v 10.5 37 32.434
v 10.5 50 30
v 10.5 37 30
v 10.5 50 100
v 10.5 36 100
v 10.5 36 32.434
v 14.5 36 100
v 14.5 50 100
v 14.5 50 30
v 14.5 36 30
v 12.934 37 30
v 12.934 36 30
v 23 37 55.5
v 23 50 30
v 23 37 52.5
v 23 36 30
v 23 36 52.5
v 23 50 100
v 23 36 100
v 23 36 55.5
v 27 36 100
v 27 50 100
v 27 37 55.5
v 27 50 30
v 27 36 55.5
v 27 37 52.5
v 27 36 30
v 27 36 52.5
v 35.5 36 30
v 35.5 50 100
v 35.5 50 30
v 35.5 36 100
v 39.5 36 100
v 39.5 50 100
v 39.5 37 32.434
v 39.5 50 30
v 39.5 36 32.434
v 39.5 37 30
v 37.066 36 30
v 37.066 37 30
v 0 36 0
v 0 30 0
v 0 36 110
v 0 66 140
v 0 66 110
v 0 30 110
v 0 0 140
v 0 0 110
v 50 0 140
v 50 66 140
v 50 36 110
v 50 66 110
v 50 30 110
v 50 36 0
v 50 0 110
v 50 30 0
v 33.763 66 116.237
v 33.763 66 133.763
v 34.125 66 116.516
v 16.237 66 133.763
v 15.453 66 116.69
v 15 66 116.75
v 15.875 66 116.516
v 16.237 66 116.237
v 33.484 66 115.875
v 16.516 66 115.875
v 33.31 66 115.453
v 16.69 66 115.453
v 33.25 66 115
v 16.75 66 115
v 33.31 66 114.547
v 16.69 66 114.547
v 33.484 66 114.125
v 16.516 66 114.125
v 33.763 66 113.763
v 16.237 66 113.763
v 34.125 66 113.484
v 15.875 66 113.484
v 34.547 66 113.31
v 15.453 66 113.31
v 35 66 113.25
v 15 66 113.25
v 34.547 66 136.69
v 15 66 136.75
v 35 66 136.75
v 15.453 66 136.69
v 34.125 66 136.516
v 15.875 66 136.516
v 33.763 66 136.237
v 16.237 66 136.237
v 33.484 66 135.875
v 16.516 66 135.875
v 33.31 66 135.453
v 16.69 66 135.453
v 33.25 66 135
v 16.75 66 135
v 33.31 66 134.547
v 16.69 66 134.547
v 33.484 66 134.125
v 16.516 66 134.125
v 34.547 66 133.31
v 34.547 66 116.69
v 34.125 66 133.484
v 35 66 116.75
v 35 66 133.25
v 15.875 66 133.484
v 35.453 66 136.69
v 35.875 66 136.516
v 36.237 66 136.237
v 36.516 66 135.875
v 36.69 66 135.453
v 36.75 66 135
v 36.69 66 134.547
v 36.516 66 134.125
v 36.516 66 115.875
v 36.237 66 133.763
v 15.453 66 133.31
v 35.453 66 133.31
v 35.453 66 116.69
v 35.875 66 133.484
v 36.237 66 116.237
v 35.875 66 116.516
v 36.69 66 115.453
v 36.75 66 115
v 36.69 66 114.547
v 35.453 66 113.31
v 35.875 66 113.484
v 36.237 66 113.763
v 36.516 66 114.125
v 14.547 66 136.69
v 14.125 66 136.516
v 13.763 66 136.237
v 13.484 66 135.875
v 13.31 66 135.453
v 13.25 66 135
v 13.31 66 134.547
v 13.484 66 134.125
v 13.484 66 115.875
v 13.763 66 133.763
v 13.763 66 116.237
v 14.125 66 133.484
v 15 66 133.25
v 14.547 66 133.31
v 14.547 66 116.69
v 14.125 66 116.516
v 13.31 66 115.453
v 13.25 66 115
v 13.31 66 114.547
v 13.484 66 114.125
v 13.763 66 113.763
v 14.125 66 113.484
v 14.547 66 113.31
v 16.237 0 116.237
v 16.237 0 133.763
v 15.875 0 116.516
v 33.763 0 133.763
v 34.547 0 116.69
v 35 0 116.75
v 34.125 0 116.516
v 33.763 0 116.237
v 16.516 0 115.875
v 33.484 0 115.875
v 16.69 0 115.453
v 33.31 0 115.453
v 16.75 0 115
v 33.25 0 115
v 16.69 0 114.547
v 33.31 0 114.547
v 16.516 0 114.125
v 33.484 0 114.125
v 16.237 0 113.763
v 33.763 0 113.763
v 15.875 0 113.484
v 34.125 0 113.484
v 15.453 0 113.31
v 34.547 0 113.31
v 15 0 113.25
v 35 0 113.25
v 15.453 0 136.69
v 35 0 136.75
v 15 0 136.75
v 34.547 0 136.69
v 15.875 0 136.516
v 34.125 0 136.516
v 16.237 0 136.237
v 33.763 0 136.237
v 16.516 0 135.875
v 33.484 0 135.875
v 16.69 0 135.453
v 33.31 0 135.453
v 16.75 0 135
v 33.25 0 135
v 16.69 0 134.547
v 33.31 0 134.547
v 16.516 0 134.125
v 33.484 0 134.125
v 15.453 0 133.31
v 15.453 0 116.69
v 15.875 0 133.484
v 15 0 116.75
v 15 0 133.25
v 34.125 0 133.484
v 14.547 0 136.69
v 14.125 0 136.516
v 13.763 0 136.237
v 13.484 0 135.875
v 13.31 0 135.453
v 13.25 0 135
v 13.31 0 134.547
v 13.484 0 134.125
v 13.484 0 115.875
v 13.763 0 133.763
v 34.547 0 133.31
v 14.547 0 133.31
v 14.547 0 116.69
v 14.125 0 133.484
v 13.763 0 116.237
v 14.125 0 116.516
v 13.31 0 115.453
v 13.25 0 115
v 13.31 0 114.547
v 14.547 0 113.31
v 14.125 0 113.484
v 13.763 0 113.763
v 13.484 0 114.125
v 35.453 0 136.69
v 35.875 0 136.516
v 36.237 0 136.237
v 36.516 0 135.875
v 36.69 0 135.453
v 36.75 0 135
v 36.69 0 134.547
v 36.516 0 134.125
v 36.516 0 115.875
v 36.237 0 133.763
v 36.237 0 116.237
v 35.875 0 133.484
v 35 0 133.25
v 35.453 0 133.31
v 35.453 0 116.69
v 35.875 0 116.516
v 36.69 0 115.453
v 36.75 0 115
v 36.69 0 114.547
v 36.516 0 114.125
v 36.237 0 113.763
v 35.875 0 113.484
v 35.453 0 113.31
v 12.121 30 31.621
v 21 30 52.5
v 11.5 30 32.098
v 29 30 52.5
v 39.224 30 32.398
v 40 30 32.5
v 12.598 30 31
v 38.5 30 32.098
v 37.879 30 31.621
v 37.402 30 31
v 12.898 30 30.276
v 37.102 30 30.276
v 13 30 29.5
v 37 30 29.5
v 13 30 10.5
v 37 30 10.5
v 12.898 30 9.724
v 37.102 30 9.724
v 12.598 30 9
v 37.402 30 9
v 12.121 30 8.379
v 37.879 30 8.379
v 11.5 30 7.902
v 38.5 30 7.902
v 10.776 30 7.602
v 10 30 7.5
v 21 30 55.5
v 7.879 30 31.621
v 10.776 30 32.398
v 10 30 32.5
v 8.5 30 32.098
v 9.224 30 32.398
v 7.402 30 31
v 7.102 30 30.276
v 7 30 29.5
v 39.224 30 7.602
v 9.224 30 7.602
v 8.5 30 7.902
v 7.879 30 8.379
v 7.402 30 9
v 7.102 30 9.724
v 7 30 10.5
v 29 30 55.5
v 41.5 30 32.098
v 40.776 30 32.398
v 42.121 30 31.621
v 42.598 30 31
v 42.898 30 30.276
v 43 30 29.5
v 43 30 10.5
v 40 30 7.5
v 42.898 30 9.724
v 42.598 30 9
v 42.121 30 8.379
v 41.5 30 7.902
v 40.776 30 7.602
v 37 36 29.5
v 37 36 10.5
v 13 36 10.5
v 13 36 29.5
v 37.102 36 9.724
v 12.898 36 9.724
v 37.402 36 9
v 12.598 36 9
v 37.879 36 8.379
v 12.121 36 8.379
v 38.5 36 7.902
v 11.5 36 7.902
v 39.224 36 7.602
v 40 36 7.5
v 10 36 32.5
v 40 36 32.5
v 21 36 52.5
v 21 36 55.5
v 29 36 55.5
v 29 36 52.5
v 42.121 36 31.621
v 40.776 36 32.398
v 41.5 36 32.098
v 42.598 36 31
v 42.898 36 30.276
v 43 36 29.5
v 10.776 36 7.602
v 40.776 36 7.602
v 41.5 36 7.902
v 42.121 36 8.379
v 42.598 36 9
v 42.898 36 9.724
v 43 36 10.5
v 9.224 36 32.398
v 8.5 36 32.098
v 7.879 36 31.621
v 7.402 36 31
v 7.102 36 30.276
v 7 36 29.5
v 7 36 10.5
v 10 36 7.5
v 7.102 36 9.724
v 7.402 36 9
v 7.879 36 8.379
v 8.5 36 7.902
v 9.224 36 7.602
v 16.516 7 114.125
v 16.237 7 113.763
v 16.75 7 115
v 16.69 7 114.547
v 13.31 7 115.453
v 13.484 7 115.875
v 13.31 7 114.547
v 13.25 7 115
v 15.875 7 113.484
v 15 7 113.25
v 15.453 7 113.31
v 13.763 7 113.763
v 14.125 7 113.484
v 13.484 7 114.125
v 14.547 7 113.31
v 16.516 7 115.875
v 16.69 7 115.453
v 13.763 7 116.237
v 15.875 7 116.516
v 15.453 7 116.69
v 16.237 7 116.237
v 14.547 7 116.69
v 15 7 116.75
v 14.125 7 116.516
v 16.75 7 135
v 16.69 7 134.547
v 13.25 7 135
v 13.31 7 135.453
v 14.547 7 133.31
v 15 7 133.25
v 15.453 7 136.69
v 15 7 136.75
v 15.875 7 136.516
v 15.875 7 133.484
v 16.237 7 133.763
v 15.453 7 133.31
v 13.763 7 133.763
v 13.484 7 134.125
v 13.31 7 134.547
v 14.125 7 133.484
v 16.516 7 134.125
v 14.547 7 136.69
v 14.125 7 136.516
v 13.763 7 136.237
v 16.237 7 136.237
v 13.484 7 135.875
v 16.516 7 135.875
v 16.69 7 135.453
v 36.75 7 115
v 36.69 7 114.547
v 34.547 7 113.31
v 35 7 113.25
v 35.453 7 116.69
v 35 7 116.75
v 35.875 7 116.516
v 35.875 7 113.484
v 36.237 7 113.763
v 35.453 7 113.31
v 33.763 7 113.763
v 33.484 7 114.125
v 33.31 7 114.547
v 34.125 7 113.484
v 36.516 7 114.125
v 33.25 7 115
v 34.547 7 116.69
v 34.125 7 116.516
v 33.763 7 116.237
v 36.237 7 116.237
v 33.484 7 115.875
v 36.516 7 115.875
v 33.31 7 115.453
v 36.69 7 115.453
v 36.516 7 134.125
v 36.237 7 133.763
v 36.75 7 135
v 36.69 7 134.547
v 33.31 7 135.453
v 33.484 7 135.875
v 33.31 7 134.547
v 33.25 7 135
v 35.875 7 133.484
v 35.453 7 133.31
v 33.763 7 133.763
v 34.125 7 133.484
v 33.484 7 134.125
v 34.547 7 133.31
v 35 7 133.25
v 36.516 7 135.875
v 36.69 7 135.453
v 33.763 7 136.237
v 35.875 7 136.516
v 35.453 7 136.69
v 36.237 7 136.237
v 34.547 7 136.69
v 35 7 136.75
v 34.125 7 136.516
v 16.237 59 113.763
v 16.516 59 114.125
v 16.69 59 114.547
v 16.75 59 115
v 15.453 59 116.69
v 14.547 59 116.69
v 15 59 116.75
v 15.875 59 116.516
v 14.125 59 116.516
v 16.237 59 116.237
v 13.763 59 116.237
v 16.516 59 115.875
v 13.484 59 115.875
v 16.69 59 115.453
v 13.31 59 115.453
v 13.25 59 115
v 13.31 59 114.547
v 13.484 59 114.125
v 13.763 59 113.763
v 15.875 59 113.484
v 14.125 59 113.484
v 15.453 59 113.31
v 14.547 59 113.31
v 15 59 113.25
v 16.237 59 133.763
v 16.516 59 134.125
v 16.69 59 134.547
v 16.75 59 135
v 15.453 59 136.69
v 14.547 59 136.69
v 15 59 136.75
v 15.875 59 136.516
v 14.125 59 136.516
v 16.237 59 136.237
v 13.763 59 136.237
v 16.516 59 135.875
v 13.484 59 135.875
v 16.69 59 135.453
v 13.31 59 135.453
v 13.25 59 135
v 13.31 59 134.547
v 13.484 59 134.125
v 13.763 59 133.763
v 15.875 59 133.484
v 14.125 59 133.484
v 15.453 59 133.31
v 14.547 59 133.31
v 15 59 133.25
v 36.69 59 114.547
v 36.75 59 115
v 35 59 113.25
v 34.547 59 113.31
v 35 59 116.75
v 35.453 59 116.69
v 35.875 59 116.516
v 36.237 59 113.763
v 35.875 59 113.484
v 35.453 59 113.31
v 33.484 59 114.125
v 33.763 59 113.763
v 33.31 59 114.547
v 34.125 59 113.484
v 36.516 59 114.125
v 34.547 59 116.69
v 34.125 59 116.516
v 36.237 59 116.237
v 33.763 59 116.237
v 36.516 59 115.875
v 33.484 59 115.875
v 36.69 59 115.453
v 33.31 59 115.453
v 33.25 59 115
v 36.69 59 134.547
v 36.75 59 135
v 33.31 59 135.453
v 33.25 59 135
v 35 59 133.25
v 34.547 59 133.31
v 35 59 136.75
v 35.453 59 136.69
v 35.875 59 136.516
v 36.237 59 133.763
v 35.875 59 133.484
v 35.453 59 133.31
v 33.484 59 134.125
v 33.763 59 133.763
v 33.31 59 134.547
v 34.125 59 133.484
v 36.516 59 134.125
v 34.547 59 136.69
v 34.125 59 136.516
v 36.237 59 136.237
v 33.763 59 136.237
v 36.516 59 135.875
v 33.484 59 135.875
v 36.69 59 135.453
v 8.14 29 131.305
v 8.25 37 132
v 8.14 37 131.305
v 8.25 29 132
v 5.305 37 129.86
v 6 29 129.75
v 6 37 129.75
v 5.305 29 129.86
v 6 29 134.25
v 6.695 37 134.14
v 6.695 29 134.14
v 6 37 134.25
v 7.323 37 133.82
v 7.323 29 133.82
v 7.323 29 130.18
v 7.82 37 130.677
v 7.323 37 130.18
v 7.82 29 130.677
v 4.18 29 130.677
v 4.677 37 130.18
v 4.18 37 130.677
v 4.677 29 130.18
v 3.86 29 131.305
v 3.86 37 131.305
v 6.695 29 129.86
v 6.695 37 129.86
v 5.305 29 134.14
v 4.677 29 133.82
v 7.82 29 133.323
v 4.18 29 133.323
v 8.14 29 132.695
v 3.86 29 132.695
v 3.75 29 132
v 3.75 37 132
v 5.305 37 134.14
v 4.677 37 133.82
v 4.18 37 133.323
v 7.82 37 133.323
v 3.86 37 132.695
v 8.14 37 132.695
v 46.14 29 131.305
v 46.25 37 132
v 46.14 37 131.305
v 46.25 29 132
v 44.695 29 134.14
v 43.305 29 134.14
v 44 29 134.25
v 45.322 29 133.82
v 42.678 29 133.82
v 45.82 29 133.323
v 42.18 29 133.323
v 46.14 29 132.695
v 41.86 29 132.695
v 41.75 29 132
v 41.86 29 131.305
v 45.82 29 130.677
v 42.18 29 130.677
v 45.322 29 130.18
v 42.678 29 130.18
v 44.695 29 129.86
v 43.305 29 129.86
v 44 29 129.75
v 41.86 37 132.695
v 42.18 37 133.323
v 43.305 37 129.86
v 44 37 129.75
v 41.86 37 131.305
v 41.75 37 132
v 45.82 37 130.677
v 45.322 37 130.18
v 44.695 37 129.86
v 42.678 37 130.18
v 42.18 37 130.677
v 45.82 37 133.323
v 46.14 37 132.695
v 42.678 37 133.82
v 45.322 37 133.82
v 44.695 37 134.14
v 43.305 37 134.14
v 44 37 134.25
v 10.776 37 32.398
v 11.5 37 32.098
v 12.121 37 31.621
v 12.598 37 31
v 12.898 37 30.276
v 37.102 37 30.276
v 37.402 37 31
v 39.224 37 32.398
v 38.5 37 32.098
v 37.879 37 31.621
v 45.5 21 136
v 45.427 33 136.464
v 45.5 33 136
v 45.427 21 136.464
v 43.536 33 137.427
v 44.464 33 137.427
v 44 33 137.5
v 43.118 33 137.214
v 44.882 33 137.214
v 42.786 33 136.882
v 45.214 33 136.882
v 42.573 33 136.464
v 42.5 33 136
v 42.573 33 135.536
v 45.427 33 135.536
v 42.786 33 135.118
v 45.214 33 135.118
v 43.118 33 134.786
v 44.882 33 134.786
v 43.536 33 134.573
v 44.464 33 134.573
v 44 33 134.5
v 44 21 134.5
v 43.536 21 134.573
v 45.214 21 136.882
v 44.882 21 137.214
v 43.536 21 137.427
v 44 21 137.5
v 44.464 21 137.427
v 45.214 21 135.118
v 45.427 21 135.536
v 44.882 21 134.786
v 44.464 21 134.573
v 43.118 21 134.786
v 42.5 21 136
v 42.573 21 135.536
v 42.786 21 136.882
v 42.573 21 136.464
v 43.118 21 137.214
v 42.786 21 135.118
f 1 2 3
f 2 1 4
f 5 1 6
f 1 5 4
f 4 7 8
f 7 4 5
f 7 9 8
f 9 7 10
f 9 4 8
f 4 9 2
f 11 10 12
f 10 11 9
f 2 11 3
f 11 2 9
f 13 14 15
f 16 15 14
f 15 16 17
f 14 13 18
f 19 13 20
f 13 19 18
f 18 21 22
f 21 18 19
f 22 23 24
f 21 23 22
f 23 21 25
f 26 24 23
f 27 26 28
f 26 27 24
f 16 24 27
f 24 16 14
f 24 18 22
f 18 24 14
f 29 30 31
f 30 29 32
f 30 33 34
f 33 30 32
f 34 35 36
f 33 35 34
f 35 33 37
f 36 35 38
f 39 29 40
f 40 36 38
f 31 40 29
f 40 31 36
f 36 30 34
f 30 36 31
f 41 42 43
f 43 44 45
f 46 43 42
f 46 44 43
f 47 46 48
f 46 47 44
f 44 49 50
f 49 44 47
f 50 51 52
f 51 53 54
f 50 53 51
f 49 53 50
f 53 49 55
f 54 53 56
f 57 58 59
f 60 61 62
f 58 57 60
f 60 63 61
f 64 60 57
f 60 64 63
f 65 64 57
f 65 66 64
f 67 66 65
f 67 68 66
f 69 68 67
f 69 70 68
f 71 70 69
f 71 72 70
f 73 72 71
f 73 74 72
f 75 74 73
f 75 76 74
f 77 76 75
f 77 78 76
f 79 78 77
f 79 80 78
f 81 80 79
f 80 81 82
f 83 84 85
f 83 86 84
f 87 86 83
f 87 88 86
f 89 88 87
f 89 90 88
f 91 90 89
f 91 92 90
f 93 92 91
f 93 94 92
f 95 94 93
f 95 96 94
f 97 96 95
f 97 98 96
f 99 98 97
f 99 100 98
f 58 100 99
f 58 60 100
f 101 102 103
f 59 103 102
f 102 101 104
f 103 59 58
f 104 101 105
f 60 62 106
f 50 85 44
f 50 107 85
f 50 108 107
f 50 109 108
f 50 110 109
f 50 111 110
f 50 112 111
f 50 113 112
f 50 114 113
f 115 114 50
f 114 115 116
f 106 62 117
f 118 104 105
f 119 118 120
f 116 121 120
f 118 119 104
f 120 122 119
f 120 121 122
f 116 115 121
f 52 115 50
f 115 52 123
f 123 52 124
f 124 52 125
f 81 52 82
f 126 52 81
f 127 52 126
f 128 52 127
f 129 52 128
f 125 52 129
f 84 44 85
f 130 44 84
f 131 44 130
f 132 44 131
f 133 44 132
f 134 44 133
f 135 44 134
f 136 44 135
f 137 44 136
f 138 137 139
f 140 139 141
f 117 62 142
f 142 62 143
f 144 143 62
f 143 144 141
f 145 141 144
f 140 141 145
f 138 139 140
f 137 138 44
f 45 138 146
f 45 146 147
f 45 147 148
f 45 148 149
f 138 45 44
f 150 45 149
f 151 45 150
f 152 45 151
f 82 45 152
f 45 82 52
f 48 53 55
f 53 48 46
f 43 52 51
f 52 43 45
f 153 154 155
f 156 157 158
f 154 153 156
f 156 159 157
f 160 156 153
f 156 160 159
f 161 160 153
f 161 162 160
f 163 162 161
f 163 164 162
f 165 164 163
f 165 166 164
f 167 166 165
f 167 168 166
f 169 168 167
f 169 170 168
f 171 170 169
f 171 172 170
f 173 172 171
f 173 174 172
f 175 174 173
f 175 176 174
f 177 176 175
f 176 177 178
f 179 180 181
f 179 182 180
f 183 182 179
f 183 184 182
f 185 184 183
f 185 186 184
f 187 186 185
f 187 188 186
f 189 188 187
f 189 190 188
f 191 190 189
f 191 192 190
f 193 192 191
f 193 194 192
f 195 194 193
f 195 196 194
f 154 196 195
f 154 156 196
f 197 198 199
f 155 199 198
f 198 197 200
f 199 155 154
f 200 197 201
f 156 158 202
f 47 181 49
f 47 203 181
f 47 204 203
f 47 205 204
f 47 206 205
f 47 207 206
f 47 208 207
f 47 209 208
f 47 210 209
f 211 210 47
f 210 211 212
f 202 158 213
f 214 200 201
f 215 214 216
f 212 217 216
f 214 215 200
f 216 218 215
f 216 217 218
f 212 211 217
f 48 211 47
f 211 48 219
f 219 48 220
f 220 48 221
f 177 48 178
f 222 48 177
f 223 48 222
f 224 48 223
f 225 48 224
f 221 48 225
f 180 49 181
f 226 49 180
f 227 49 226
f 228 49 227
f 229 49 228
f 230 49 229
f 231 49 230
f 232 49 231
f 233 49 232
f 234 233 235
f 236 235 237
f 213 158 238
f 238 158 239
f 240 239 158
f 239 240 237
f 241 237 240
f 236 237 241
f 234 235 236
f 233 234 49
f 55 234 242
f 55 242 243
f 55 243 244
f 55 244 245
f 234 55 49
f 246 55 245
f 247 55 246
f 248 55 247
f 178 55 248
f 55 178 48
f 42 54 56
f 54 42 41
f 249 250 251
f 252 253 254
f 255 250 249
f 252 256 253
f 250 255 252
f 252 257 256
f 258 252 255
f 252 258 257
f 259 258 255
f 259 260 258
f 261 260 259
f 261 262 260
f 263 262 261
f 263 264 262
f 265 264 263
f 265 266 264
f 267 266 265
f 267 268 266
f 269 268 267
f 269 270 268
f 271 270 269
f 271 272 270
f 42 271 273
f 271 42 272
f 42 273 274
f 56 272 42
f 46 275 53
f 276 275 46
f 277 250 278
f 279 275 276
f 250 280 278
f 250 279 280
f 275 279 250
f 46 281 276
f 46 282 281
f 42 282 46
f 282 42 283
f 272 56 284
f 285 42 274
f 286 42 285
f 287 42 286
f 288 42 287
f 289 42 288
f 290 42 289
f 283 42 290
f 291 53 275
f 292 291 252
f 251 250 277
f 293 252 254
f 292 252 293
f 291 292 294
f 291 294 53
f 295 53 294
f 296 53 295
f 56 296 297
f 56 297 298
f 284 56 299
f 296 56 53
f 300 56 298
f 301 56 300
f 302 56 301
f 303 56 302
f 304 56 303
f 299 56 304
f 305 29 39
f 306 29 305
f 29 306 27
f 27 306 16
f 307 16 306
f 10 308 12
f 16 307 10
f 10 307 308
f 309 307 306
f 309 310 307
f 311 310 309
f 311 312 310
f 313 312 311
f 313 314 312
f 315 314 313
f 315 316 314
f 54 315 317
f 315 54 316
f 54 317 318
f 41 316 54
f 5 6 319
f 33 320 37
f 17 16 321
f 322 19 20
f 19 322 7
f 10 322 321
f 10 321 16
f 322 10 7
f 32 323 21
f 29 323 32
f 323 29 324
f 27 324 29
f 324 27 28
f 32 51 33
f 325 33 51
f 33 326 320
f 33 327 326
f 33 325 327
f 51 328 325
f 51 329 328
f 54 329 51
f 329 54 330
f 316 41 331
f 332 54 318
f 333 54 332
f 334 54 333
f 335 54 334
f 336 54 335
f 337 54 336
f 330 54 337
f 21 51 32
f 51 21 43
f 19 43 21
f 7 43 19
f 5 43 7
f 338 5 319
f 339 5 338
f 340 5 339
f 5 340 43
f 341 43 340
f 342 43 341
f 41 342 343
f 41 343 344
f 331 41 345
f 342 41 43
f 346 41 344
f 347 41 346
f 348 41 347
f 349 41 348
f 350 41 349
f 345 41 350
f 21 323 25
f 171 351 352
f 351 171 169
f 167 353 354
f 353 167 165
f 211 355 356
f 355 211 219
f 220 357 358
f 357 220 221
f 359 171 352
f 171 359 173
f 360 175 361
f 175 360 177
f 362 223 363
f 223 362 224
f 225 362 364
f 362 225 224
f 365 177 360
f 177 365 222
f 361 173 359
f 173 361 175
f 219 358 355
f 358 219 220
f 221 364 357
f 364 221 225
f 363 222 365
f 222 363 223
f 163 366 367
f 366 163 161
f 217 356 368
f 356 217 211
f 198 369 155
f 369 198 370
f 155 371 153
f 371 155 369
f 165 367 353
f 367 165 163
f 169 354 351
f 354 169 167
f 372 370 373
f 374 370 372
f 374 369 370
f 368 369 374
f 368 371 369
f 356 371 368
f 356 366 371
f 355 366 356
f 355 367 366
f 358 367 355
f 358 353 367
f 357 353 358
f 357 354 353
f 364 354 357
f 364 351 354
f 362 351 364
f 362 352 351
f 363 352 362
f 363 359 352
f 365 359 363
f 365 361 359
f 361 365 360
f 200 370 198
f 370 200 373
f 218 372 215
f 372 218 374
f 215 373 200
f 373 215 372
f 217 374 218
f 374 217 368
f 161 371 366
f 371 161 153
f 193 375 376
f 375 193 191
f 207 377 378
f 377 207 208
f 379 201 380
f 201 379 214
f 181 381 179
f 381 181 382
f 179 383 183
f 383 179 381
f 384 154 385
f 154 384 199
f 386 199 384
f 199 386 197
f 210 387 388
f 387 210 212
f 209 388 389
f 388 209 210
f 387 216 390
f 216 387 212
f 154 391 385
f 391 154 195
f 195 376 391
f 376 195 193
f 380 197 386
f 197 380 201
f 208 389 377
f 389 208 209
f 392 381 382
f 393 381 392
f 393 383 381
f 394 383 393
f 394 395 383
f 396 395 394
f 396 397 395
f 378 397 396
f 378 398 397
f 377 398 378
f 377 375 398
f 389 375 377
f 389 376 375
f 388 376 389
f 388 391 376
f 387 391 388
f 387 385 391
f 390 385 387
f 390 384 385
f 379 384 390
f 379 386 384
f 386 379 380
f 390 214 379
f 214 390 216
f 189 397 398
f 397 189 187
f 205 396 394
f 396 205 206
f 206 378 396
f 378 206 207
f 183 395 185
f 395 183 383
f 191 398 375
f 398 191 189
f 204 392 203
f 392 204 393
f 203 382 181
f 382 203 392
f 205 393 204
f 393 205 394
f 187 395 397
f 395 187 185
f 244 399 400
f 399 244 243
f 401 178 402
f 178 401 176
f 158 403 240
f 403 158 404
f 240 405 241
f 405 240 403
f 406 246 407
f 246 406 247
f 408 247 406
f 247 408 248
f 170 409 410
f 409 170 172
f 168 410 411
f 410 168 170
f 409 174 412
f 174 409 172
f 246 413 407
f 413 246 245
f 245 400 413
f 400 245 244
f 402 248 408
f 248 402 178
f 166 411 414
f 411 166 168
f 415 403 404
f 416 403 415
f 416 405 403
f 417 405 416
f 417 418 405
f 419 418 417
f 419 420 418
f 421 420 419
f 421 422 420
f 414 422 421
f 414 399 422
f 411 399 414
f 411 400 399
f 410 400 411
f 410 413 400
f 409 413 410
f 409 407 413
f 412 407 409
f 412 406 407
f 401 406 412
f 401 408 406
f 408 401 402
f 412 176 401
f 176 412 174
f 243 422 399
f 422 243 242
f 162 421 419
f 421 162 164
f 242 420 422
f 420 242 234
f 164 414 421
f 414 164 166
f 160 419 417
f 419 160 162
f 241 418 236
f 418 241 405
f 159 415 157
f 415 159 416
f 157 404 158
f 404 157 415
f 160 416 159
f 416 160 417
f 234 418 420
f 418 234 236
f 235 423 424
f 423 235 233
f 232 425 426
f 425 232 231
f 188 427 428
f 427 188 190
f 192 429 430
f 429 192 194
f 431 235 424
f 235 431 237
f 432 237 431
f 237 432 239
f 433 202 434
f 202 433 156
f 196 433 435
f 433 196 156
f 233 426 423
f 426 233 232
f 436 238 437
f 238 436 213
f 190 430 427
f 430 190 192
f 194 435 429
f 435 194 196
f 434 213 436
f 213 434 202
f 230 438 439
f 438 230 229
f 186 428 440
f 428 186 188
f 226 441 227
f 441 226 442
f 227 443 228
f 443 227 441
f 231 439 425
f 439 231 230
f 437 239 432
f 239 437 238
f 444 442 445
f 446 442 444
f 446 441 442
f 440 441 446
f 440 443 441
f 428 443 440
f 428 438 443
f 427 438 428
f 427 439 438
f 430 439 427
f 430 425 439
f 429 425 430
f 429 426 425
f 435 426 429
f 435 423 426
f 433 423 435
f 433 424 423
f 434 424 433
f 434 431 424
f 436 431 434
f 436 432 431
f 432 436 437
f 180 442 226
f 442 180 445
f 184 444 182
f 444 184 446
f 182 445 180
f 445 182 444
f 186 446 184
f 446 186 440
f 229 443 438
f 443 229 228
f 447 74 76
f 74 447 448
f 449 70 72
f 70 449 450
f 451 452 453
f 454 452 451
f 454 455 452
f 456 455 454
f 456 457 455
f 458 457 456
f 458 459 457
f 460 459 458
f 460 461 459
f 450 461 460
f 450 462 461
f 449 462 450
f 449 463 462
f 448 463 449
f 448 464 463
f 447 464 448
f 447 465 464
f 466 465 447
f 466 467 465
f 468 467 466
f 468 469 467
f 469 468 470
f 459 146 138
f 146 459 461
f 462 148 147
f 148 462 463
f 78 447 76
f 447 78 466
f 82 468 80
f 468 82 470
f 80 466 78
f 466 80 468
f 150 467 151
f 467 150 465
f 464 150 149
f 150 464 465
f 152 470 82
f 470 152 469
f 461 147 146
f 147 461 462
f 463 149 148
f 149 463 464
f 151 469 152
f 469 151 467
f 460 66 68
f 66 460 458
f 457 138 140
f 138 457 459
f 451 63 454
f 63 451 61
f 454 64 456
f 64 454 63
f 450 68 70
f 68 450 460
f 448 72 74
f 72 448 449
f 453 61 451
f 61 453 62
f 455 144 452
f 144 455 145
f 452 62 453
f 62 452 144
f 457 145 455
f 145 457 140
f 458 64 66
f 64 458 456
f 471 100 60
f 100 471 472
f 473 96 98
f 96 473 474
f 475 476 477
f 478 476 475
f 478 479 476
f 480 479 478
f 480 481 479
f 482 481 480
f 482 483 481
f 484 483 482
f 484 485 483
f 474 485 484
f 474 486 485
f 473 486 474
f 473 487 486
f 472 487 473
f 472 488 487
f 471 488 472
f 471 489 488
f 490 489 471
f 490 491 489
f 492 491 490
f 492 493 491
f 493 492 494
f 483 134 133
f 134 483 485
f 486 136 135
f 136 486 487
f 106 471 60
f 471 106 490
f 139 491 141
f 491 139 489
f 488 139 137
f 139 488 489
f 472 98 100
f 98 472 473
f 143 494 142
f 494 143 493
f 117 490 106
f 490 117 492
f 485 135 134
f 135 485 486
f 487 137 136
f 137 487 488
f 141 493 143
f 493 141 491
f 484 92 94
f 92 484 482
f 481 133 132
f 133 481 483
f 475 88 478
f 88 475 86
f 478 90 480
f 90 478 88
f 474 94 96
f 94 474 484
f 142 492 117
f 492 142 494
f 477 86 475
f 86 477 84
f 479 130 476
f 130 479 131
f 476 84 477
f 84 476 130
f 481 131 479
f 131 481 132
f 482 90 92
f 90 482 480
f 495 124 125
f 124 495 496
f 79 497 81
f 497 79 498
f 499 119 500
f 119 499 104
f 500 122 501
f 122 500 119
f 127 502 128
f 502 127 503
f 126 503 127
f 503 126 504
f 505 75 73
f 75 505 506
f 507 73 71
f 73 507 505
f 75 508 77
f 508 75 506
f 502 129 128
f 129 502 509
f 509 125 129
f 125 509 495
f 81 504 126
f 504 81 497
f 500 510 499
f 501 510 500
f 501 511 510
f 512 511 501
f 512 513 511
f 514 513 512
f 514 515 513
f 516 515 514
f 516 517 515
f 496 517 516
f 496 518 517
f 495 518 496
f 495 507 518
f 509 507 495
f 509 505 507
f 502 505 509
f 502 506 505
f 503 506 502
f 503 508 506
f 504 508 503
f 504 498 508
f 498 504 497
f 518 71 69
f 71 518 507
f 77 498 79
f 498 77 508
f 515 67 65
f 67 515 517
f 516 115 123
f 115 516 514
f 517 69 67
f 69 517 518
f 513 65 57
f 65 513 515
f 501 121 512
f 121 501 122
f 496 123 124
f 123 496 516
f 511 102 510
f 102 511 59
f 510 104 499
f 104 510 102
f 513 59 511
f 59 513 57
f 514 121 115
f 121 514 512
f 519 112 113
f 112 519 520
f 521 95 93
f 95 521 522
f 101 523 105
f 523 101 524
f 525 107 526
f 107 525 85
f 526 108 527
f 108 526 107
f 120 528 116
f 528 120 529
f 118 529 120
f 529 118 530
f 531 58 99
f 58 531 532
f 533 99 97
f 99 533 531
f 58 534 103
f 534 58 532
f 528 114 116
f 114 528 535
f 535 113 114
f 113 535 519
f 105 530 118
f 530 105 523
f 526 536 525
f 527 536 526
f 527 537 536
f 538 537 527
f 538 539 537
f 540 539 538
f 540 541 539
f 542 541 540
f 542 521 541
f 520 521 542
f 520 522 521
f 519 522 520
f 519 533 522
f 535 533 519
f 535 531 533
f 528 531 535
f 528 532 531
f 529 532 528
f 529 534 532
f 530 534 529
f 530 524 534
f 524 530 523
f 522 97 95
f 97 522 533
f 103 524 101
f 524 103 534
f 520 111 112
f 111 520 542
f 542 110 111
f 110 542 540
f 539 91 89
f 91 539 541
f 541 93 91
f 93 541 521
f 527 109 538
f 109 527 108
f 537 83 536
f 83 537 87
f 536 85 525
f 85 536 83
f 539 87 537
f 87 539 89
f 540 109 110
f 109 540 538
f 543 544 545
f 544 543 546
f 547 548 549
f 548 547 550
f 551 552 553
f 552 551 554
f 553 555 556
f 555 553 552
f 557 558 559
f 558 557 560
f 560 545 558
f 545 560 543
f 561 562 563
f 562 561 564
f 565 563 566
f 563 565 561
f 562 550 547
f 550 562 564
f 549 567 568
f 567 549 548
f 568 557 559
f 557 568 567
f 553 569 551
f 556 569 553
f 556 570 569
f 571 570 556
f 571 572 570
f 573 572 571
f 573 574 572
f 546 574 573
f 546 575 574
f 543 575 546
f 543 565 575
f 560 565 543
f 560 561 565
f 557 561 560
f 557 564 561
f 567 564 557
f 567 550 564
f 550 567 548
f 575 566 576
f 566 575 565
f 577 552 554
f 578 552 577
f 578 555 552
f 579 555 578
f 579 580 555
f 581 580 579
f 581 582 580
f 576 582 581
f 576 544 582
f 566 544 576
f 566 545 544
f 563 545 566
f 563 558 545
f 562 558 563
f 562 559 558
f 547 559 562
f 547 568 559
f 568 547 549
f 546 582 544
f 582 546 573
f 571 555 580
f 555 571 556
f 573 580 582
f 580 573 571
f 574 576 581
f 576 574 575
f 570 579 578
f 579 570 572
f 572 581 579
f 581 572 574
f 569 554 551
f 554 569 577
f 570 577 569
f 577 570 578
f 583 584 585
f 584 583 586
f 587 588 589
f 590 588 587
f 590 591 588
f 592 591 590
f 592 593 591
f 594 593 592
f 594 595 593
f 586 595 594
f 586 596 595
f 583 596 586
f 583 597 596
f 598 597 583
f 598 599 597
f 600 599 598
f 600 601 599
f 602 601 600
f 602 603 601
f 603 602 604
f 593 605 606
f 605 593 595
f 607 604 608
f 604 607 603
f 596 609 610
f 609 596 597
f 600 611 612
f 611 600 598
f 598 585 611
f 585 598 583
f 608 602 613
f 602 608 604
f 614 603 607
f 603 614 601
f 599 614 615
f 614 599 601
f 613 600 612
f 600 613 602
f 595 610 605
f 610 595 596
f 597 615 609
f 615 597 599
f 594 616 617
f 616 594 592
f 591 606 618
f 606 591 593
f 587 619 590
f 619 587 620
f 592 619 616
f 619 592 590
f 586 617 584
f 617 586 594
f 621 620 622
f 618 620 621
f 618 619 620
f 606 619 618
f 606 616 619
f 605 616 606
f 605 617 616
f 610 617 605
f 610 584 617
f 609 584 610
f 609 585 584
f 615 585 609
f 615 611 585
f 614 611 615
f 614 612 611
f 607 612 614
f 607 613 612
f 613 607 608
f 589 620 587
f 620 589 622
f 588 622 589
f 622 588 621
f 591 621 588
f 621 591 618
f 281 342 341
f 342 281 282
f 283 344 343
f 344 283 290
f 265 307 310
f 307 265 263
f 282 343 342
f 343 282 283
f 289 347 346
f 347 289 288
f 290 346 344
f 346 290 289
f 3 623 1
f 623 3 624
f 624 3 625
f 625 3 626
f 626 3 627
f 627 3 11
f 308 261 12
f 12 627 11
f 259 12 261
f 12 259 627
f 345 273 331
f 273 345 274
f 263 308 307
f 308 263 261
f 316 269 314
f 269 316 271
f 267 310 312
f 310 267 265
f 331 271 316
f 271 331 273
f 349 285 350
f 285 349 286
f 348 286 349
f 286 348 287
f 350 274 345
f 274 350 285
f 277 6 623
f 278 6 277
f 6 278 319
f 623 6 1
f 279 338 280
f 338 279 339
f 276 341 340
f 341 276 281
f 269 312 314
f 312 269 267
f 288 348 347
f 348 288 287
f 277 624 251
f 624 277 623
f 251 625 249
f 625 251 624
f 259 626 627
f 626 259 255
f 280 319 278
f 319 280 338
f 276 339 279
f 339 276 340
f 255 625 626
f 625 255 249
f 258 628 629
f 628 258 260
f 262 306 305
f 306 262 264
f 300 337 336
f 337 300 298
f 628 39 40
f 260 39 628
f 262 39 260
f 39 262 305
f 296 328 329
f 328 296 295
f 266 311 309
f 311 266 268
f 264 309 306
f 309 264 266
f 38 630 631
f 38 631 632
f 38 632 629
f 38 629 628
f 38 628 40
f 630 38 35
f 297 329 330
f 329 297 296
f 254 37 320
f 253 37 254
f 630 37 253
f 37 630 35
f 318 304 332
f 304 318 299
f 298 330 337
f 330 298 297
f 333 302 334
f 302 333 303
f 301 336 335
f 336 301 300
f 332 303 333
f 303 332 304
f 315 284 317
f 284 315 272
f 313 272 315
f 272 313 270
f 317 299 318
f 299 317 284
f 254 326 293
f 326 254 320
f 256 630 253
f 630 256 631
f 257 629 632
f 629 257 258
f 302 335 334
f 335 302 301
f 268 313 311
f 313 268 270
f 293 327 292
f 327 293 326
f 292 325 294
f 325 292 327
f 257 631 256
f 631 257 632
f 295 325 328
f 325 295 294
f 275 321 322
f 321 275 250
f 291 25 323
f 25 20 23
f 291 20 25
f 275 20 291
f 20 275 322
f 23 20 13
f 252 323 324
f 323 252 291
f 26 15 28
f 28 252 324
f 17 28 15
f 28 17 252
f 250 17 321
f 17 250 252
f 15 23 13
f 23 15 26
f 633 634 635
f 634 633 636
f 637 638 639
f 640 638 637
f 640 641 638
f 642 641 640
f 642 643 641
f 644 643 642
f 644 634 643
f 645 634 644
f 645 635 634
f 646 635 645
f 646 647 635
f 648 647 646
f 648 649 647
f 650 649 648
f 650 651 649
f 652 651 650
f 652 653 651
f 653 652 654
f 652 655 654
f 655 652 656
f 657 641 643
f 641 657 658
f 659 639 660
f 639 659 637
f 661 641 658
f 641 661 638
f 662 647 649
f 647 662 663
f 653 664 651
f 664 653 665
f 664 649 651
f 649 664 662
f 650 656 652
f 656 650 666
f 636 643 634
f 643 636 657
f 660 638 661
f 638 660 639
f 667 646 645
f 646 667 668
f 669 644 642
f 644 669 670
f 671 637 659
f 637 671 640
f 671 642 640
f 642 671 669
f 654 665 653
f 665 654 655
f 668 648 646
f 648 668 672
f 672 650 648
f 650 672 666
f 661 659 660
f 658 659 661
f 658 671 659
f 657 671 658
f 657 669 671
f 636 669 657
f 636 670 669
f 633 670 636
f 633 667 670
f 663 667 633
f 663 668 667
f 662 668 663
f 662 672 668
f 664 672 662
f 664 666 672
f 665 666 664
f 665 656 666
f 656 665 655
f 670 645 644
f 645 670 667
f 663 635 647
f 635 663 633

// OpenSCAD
// Y-axis laser carriage: K40 mounting bracket
// See docs/decisions/0032-y-axis-laser-carriage.md, 0039-y-axis-single-rail-dual-block.md
//
// Material: PLA-CF, printed flat-back-down (block-mount face down on the
// print bed) so the bolt-hole axes print vertically (stronger, no
// overhang/bridging on the holes themselves).
//
// PARAMETERS MARKED "VERIFY" ARE WORKING ESTIMATES -- confirm against the
// actual MGN12H block, K40 sliding plate, and beam/rail stack-up before
// printing the final version. See ADR 0032's own caveats.
//
// Single MGN12 rail (ADR 0039, reverting 0038's dual-rail approach): the
// cantilever-moment concern is resolved by mounting TWO MGN12H blocks on
// this ONE rail, spaced apart along the rail's own travel direction
// (the same axis the belt runs along), instead of by adding a second
// parallel rail. The block-mount zone is a spine spanning both block
// positions; the standoff/K40-mount arm hangs from its center.

// ---- Plate ----
plate_width       = 50;    // matches gantry end plate width, 0013/0016
plate_thickness   = 6;     // base wall thickness (PLA-CF)

// ---- Block-mount zone (top) ----
block_zone_height  = 30;
block_hole_dia     = 3.5;  // M3 clearance
block_pattern      = 20;   // 20x20mm MGN12H pattern, 0013
block_travel_span  = 60;   // VERIFY: center-to-center spacing between the 2
                            // blocks along the rail's travel direction --
                            // must clear MGN12H's 45.4mm block length with a
                            // real gap (0039); wider spacing gives more
                            // moment resistance, kept modest here for
                            // carriage compactness

// ---- Belt clamp holes (top, either side of block-mount zone) ----
clamp_hole_dia    = 4.5;   // M4 clearance, 3DMAN clamp, 0020
clamp_margin_x    = 6;     // from plate edge, matches 0016's placement

// ---- Standoff / rib zone (middle) ----
standoff_height   = 70;    // VERIFY: clear beam's bottom edge + rail/block stack-up (est. 60-80mm)
rib_depth         = 14;    // how far the ribs project behind the plate
rib_count         = 3;
rib_thickness     = 4;

// ---- K40 mount zone (bottom) ----
k40_zone_height   = 40;
k40_slot_width    = 6;     // VERIFY against actual K40 sliding plate
k40_slot_height   = 25;    // VERIFY -- also serves as focus-height adjustment travel
k40_slot_spacing  = 30;    // VERIFY: placeholder hole spacing, center-to-center

// ---- Cable management (0031) ----
anchor_post_dia   = 8;
anchor_hole_dia   = 3;

total_height = block_zone_height + standoff_height + k40_zone_height;

// Total Y-extent of the spine covering both block-mount faces
spine_span   = block_travel_span + plate_thickness;
// Y-offset of the standoff/K40 column, centered under the spine
standoff_y0  = spine_span / 2 - plate_thickness / 2;

module spine() {
    // Solid block spanning both block positions -- the rigid link between
    // the 2 blocks on the single rail, replacing 0038's wider side-by-side
    // 2-rail plate.
    translate([0, 0, total_height - block_zone_height])
        cube([plate_width, spine_span, block_zone_height]);
}

module block_mount_holes() {
    // Front block: bore from the y=0 face inward
    for (dx = [-block_pattern/2, block_pattern/2])
        for (dz = [-block_pattern/2, block_pattern/2])
            translate([plate_width/2 + dx, -1, total_height - block_zone_height/2 + dz])
                rotate([-90, 0, 0])
                    cylinder(h = plate_thickness + 2, d = block_hole_dia, $fn = 24);
    // Rear block, block_travel_span away: bore from the spine's far face inward
    for (dx = [-block_pattern/2, block_pattern/2])
        for (dz = [-block_pattern/2, block_pattern/2])
            translate([plate_width/2 + dx, spine_span - plate_thickness - 1, total_height - block_zone_height/2 + dz])
                rotate([-90, 0, 0])
                    cylinder(h = plate_thickness + 2, d = block_hole_dia, $fn = 24);
}

module belt_clamp_holes() {
    z = total_height - 8;
    for (x = [clamp_margin_x, plate_width - clamp_margin_x])
        translate([x, standoff_y0 - 1, z])
            rotate([-90, 0, 0])
                cylinder(h = plate_thickness + 2, d = clamp_hole_dia, $fn = 20);
}

module k40_slots() {
    z = k40_zone_height/2;
    for (x = [plate_width/2 - k40_slot_spacing/2, plate_width/2 + k40_slot_spacing/2])
        translate([x, standoff_y0 - 1, z])
            rotate([-90, 0, 0])
                linear_extrude(height = plate_thickness + 2)
                    hull() {
                        translate([0,  (k40_slot_height - k40_slot_width)/2]) circle(d = k40_slot_width, $fn = 24);
                        translate([0, -(k40_slot_height - k40_slot_width)/2]) circle(d = k40_slot_width, $fn = 24);
                    }
}

module cable_zip_tie_slot() {
    // pass-through slot for spiral-wrapped bundle, mid standoff zone
    z = block_zone_height + standoff_height/2;
    translate([plate_width/2 - 4, standoff_y0 - 1, z - 12.5])
        cube([8, plate_thickness + 2, 3]);
}

anchor_x = plate_width - clamp_margin_x;
anchor_z = total_height - 4;

module cable_anchor_post() {
    // small post near the top corner for the tension line, 0031 -- overlaps
    // 2mm into the plate so it's a proper manifold union, not just touching
    translate([anchor_x, standoff_y0 + plate_thickness - 2, anchor_z])
        rotate([90, 0, 0])
            cylinder(h = anchor_post_dia + 2, d = anchor_post_dia, $fn = 24);
}

module cable_anchor_hole() {
    translate([anchor_x, standoff_y0 + plate_thickness - 3, anchor_z])
        rotate([90, 0, 0])
            cylinder(h = anchor_post_dia + 4, d = anchor_hole_dia, $fn = 20);
}

module ribs() {
    // triangular gussets behind the standoff zone for stiffness under the
    // cantilevered K40 load (~900g module + bracket)
    z0 = block_zone_height;
    z1 = block_zone_height + standoff_height;
    spacing = plate_width / (rib_count + 1);
    for (i = [1 : rib_count])
        translate([i * spacing - rib_thickness/2, standoff_y0 + plate_thickness - 1, z0])
            cube([rib_thickness, rib_depth + 1, z1 - z0]);
}

module plate() {
    difference() {
        union() {
            spine();
            translate([0, standoff_y0, 0])
                cube([plate_width, plate_thickness, total_height - block_zone_height]);
            ribs();
            cable_anchor_post();
        }
        block_mount_holes();
        belt_clamp_holes();
        k40_slots();
        cable_zip_tie_slot();
        cable_anchor_hole();
    }
}

plate();
